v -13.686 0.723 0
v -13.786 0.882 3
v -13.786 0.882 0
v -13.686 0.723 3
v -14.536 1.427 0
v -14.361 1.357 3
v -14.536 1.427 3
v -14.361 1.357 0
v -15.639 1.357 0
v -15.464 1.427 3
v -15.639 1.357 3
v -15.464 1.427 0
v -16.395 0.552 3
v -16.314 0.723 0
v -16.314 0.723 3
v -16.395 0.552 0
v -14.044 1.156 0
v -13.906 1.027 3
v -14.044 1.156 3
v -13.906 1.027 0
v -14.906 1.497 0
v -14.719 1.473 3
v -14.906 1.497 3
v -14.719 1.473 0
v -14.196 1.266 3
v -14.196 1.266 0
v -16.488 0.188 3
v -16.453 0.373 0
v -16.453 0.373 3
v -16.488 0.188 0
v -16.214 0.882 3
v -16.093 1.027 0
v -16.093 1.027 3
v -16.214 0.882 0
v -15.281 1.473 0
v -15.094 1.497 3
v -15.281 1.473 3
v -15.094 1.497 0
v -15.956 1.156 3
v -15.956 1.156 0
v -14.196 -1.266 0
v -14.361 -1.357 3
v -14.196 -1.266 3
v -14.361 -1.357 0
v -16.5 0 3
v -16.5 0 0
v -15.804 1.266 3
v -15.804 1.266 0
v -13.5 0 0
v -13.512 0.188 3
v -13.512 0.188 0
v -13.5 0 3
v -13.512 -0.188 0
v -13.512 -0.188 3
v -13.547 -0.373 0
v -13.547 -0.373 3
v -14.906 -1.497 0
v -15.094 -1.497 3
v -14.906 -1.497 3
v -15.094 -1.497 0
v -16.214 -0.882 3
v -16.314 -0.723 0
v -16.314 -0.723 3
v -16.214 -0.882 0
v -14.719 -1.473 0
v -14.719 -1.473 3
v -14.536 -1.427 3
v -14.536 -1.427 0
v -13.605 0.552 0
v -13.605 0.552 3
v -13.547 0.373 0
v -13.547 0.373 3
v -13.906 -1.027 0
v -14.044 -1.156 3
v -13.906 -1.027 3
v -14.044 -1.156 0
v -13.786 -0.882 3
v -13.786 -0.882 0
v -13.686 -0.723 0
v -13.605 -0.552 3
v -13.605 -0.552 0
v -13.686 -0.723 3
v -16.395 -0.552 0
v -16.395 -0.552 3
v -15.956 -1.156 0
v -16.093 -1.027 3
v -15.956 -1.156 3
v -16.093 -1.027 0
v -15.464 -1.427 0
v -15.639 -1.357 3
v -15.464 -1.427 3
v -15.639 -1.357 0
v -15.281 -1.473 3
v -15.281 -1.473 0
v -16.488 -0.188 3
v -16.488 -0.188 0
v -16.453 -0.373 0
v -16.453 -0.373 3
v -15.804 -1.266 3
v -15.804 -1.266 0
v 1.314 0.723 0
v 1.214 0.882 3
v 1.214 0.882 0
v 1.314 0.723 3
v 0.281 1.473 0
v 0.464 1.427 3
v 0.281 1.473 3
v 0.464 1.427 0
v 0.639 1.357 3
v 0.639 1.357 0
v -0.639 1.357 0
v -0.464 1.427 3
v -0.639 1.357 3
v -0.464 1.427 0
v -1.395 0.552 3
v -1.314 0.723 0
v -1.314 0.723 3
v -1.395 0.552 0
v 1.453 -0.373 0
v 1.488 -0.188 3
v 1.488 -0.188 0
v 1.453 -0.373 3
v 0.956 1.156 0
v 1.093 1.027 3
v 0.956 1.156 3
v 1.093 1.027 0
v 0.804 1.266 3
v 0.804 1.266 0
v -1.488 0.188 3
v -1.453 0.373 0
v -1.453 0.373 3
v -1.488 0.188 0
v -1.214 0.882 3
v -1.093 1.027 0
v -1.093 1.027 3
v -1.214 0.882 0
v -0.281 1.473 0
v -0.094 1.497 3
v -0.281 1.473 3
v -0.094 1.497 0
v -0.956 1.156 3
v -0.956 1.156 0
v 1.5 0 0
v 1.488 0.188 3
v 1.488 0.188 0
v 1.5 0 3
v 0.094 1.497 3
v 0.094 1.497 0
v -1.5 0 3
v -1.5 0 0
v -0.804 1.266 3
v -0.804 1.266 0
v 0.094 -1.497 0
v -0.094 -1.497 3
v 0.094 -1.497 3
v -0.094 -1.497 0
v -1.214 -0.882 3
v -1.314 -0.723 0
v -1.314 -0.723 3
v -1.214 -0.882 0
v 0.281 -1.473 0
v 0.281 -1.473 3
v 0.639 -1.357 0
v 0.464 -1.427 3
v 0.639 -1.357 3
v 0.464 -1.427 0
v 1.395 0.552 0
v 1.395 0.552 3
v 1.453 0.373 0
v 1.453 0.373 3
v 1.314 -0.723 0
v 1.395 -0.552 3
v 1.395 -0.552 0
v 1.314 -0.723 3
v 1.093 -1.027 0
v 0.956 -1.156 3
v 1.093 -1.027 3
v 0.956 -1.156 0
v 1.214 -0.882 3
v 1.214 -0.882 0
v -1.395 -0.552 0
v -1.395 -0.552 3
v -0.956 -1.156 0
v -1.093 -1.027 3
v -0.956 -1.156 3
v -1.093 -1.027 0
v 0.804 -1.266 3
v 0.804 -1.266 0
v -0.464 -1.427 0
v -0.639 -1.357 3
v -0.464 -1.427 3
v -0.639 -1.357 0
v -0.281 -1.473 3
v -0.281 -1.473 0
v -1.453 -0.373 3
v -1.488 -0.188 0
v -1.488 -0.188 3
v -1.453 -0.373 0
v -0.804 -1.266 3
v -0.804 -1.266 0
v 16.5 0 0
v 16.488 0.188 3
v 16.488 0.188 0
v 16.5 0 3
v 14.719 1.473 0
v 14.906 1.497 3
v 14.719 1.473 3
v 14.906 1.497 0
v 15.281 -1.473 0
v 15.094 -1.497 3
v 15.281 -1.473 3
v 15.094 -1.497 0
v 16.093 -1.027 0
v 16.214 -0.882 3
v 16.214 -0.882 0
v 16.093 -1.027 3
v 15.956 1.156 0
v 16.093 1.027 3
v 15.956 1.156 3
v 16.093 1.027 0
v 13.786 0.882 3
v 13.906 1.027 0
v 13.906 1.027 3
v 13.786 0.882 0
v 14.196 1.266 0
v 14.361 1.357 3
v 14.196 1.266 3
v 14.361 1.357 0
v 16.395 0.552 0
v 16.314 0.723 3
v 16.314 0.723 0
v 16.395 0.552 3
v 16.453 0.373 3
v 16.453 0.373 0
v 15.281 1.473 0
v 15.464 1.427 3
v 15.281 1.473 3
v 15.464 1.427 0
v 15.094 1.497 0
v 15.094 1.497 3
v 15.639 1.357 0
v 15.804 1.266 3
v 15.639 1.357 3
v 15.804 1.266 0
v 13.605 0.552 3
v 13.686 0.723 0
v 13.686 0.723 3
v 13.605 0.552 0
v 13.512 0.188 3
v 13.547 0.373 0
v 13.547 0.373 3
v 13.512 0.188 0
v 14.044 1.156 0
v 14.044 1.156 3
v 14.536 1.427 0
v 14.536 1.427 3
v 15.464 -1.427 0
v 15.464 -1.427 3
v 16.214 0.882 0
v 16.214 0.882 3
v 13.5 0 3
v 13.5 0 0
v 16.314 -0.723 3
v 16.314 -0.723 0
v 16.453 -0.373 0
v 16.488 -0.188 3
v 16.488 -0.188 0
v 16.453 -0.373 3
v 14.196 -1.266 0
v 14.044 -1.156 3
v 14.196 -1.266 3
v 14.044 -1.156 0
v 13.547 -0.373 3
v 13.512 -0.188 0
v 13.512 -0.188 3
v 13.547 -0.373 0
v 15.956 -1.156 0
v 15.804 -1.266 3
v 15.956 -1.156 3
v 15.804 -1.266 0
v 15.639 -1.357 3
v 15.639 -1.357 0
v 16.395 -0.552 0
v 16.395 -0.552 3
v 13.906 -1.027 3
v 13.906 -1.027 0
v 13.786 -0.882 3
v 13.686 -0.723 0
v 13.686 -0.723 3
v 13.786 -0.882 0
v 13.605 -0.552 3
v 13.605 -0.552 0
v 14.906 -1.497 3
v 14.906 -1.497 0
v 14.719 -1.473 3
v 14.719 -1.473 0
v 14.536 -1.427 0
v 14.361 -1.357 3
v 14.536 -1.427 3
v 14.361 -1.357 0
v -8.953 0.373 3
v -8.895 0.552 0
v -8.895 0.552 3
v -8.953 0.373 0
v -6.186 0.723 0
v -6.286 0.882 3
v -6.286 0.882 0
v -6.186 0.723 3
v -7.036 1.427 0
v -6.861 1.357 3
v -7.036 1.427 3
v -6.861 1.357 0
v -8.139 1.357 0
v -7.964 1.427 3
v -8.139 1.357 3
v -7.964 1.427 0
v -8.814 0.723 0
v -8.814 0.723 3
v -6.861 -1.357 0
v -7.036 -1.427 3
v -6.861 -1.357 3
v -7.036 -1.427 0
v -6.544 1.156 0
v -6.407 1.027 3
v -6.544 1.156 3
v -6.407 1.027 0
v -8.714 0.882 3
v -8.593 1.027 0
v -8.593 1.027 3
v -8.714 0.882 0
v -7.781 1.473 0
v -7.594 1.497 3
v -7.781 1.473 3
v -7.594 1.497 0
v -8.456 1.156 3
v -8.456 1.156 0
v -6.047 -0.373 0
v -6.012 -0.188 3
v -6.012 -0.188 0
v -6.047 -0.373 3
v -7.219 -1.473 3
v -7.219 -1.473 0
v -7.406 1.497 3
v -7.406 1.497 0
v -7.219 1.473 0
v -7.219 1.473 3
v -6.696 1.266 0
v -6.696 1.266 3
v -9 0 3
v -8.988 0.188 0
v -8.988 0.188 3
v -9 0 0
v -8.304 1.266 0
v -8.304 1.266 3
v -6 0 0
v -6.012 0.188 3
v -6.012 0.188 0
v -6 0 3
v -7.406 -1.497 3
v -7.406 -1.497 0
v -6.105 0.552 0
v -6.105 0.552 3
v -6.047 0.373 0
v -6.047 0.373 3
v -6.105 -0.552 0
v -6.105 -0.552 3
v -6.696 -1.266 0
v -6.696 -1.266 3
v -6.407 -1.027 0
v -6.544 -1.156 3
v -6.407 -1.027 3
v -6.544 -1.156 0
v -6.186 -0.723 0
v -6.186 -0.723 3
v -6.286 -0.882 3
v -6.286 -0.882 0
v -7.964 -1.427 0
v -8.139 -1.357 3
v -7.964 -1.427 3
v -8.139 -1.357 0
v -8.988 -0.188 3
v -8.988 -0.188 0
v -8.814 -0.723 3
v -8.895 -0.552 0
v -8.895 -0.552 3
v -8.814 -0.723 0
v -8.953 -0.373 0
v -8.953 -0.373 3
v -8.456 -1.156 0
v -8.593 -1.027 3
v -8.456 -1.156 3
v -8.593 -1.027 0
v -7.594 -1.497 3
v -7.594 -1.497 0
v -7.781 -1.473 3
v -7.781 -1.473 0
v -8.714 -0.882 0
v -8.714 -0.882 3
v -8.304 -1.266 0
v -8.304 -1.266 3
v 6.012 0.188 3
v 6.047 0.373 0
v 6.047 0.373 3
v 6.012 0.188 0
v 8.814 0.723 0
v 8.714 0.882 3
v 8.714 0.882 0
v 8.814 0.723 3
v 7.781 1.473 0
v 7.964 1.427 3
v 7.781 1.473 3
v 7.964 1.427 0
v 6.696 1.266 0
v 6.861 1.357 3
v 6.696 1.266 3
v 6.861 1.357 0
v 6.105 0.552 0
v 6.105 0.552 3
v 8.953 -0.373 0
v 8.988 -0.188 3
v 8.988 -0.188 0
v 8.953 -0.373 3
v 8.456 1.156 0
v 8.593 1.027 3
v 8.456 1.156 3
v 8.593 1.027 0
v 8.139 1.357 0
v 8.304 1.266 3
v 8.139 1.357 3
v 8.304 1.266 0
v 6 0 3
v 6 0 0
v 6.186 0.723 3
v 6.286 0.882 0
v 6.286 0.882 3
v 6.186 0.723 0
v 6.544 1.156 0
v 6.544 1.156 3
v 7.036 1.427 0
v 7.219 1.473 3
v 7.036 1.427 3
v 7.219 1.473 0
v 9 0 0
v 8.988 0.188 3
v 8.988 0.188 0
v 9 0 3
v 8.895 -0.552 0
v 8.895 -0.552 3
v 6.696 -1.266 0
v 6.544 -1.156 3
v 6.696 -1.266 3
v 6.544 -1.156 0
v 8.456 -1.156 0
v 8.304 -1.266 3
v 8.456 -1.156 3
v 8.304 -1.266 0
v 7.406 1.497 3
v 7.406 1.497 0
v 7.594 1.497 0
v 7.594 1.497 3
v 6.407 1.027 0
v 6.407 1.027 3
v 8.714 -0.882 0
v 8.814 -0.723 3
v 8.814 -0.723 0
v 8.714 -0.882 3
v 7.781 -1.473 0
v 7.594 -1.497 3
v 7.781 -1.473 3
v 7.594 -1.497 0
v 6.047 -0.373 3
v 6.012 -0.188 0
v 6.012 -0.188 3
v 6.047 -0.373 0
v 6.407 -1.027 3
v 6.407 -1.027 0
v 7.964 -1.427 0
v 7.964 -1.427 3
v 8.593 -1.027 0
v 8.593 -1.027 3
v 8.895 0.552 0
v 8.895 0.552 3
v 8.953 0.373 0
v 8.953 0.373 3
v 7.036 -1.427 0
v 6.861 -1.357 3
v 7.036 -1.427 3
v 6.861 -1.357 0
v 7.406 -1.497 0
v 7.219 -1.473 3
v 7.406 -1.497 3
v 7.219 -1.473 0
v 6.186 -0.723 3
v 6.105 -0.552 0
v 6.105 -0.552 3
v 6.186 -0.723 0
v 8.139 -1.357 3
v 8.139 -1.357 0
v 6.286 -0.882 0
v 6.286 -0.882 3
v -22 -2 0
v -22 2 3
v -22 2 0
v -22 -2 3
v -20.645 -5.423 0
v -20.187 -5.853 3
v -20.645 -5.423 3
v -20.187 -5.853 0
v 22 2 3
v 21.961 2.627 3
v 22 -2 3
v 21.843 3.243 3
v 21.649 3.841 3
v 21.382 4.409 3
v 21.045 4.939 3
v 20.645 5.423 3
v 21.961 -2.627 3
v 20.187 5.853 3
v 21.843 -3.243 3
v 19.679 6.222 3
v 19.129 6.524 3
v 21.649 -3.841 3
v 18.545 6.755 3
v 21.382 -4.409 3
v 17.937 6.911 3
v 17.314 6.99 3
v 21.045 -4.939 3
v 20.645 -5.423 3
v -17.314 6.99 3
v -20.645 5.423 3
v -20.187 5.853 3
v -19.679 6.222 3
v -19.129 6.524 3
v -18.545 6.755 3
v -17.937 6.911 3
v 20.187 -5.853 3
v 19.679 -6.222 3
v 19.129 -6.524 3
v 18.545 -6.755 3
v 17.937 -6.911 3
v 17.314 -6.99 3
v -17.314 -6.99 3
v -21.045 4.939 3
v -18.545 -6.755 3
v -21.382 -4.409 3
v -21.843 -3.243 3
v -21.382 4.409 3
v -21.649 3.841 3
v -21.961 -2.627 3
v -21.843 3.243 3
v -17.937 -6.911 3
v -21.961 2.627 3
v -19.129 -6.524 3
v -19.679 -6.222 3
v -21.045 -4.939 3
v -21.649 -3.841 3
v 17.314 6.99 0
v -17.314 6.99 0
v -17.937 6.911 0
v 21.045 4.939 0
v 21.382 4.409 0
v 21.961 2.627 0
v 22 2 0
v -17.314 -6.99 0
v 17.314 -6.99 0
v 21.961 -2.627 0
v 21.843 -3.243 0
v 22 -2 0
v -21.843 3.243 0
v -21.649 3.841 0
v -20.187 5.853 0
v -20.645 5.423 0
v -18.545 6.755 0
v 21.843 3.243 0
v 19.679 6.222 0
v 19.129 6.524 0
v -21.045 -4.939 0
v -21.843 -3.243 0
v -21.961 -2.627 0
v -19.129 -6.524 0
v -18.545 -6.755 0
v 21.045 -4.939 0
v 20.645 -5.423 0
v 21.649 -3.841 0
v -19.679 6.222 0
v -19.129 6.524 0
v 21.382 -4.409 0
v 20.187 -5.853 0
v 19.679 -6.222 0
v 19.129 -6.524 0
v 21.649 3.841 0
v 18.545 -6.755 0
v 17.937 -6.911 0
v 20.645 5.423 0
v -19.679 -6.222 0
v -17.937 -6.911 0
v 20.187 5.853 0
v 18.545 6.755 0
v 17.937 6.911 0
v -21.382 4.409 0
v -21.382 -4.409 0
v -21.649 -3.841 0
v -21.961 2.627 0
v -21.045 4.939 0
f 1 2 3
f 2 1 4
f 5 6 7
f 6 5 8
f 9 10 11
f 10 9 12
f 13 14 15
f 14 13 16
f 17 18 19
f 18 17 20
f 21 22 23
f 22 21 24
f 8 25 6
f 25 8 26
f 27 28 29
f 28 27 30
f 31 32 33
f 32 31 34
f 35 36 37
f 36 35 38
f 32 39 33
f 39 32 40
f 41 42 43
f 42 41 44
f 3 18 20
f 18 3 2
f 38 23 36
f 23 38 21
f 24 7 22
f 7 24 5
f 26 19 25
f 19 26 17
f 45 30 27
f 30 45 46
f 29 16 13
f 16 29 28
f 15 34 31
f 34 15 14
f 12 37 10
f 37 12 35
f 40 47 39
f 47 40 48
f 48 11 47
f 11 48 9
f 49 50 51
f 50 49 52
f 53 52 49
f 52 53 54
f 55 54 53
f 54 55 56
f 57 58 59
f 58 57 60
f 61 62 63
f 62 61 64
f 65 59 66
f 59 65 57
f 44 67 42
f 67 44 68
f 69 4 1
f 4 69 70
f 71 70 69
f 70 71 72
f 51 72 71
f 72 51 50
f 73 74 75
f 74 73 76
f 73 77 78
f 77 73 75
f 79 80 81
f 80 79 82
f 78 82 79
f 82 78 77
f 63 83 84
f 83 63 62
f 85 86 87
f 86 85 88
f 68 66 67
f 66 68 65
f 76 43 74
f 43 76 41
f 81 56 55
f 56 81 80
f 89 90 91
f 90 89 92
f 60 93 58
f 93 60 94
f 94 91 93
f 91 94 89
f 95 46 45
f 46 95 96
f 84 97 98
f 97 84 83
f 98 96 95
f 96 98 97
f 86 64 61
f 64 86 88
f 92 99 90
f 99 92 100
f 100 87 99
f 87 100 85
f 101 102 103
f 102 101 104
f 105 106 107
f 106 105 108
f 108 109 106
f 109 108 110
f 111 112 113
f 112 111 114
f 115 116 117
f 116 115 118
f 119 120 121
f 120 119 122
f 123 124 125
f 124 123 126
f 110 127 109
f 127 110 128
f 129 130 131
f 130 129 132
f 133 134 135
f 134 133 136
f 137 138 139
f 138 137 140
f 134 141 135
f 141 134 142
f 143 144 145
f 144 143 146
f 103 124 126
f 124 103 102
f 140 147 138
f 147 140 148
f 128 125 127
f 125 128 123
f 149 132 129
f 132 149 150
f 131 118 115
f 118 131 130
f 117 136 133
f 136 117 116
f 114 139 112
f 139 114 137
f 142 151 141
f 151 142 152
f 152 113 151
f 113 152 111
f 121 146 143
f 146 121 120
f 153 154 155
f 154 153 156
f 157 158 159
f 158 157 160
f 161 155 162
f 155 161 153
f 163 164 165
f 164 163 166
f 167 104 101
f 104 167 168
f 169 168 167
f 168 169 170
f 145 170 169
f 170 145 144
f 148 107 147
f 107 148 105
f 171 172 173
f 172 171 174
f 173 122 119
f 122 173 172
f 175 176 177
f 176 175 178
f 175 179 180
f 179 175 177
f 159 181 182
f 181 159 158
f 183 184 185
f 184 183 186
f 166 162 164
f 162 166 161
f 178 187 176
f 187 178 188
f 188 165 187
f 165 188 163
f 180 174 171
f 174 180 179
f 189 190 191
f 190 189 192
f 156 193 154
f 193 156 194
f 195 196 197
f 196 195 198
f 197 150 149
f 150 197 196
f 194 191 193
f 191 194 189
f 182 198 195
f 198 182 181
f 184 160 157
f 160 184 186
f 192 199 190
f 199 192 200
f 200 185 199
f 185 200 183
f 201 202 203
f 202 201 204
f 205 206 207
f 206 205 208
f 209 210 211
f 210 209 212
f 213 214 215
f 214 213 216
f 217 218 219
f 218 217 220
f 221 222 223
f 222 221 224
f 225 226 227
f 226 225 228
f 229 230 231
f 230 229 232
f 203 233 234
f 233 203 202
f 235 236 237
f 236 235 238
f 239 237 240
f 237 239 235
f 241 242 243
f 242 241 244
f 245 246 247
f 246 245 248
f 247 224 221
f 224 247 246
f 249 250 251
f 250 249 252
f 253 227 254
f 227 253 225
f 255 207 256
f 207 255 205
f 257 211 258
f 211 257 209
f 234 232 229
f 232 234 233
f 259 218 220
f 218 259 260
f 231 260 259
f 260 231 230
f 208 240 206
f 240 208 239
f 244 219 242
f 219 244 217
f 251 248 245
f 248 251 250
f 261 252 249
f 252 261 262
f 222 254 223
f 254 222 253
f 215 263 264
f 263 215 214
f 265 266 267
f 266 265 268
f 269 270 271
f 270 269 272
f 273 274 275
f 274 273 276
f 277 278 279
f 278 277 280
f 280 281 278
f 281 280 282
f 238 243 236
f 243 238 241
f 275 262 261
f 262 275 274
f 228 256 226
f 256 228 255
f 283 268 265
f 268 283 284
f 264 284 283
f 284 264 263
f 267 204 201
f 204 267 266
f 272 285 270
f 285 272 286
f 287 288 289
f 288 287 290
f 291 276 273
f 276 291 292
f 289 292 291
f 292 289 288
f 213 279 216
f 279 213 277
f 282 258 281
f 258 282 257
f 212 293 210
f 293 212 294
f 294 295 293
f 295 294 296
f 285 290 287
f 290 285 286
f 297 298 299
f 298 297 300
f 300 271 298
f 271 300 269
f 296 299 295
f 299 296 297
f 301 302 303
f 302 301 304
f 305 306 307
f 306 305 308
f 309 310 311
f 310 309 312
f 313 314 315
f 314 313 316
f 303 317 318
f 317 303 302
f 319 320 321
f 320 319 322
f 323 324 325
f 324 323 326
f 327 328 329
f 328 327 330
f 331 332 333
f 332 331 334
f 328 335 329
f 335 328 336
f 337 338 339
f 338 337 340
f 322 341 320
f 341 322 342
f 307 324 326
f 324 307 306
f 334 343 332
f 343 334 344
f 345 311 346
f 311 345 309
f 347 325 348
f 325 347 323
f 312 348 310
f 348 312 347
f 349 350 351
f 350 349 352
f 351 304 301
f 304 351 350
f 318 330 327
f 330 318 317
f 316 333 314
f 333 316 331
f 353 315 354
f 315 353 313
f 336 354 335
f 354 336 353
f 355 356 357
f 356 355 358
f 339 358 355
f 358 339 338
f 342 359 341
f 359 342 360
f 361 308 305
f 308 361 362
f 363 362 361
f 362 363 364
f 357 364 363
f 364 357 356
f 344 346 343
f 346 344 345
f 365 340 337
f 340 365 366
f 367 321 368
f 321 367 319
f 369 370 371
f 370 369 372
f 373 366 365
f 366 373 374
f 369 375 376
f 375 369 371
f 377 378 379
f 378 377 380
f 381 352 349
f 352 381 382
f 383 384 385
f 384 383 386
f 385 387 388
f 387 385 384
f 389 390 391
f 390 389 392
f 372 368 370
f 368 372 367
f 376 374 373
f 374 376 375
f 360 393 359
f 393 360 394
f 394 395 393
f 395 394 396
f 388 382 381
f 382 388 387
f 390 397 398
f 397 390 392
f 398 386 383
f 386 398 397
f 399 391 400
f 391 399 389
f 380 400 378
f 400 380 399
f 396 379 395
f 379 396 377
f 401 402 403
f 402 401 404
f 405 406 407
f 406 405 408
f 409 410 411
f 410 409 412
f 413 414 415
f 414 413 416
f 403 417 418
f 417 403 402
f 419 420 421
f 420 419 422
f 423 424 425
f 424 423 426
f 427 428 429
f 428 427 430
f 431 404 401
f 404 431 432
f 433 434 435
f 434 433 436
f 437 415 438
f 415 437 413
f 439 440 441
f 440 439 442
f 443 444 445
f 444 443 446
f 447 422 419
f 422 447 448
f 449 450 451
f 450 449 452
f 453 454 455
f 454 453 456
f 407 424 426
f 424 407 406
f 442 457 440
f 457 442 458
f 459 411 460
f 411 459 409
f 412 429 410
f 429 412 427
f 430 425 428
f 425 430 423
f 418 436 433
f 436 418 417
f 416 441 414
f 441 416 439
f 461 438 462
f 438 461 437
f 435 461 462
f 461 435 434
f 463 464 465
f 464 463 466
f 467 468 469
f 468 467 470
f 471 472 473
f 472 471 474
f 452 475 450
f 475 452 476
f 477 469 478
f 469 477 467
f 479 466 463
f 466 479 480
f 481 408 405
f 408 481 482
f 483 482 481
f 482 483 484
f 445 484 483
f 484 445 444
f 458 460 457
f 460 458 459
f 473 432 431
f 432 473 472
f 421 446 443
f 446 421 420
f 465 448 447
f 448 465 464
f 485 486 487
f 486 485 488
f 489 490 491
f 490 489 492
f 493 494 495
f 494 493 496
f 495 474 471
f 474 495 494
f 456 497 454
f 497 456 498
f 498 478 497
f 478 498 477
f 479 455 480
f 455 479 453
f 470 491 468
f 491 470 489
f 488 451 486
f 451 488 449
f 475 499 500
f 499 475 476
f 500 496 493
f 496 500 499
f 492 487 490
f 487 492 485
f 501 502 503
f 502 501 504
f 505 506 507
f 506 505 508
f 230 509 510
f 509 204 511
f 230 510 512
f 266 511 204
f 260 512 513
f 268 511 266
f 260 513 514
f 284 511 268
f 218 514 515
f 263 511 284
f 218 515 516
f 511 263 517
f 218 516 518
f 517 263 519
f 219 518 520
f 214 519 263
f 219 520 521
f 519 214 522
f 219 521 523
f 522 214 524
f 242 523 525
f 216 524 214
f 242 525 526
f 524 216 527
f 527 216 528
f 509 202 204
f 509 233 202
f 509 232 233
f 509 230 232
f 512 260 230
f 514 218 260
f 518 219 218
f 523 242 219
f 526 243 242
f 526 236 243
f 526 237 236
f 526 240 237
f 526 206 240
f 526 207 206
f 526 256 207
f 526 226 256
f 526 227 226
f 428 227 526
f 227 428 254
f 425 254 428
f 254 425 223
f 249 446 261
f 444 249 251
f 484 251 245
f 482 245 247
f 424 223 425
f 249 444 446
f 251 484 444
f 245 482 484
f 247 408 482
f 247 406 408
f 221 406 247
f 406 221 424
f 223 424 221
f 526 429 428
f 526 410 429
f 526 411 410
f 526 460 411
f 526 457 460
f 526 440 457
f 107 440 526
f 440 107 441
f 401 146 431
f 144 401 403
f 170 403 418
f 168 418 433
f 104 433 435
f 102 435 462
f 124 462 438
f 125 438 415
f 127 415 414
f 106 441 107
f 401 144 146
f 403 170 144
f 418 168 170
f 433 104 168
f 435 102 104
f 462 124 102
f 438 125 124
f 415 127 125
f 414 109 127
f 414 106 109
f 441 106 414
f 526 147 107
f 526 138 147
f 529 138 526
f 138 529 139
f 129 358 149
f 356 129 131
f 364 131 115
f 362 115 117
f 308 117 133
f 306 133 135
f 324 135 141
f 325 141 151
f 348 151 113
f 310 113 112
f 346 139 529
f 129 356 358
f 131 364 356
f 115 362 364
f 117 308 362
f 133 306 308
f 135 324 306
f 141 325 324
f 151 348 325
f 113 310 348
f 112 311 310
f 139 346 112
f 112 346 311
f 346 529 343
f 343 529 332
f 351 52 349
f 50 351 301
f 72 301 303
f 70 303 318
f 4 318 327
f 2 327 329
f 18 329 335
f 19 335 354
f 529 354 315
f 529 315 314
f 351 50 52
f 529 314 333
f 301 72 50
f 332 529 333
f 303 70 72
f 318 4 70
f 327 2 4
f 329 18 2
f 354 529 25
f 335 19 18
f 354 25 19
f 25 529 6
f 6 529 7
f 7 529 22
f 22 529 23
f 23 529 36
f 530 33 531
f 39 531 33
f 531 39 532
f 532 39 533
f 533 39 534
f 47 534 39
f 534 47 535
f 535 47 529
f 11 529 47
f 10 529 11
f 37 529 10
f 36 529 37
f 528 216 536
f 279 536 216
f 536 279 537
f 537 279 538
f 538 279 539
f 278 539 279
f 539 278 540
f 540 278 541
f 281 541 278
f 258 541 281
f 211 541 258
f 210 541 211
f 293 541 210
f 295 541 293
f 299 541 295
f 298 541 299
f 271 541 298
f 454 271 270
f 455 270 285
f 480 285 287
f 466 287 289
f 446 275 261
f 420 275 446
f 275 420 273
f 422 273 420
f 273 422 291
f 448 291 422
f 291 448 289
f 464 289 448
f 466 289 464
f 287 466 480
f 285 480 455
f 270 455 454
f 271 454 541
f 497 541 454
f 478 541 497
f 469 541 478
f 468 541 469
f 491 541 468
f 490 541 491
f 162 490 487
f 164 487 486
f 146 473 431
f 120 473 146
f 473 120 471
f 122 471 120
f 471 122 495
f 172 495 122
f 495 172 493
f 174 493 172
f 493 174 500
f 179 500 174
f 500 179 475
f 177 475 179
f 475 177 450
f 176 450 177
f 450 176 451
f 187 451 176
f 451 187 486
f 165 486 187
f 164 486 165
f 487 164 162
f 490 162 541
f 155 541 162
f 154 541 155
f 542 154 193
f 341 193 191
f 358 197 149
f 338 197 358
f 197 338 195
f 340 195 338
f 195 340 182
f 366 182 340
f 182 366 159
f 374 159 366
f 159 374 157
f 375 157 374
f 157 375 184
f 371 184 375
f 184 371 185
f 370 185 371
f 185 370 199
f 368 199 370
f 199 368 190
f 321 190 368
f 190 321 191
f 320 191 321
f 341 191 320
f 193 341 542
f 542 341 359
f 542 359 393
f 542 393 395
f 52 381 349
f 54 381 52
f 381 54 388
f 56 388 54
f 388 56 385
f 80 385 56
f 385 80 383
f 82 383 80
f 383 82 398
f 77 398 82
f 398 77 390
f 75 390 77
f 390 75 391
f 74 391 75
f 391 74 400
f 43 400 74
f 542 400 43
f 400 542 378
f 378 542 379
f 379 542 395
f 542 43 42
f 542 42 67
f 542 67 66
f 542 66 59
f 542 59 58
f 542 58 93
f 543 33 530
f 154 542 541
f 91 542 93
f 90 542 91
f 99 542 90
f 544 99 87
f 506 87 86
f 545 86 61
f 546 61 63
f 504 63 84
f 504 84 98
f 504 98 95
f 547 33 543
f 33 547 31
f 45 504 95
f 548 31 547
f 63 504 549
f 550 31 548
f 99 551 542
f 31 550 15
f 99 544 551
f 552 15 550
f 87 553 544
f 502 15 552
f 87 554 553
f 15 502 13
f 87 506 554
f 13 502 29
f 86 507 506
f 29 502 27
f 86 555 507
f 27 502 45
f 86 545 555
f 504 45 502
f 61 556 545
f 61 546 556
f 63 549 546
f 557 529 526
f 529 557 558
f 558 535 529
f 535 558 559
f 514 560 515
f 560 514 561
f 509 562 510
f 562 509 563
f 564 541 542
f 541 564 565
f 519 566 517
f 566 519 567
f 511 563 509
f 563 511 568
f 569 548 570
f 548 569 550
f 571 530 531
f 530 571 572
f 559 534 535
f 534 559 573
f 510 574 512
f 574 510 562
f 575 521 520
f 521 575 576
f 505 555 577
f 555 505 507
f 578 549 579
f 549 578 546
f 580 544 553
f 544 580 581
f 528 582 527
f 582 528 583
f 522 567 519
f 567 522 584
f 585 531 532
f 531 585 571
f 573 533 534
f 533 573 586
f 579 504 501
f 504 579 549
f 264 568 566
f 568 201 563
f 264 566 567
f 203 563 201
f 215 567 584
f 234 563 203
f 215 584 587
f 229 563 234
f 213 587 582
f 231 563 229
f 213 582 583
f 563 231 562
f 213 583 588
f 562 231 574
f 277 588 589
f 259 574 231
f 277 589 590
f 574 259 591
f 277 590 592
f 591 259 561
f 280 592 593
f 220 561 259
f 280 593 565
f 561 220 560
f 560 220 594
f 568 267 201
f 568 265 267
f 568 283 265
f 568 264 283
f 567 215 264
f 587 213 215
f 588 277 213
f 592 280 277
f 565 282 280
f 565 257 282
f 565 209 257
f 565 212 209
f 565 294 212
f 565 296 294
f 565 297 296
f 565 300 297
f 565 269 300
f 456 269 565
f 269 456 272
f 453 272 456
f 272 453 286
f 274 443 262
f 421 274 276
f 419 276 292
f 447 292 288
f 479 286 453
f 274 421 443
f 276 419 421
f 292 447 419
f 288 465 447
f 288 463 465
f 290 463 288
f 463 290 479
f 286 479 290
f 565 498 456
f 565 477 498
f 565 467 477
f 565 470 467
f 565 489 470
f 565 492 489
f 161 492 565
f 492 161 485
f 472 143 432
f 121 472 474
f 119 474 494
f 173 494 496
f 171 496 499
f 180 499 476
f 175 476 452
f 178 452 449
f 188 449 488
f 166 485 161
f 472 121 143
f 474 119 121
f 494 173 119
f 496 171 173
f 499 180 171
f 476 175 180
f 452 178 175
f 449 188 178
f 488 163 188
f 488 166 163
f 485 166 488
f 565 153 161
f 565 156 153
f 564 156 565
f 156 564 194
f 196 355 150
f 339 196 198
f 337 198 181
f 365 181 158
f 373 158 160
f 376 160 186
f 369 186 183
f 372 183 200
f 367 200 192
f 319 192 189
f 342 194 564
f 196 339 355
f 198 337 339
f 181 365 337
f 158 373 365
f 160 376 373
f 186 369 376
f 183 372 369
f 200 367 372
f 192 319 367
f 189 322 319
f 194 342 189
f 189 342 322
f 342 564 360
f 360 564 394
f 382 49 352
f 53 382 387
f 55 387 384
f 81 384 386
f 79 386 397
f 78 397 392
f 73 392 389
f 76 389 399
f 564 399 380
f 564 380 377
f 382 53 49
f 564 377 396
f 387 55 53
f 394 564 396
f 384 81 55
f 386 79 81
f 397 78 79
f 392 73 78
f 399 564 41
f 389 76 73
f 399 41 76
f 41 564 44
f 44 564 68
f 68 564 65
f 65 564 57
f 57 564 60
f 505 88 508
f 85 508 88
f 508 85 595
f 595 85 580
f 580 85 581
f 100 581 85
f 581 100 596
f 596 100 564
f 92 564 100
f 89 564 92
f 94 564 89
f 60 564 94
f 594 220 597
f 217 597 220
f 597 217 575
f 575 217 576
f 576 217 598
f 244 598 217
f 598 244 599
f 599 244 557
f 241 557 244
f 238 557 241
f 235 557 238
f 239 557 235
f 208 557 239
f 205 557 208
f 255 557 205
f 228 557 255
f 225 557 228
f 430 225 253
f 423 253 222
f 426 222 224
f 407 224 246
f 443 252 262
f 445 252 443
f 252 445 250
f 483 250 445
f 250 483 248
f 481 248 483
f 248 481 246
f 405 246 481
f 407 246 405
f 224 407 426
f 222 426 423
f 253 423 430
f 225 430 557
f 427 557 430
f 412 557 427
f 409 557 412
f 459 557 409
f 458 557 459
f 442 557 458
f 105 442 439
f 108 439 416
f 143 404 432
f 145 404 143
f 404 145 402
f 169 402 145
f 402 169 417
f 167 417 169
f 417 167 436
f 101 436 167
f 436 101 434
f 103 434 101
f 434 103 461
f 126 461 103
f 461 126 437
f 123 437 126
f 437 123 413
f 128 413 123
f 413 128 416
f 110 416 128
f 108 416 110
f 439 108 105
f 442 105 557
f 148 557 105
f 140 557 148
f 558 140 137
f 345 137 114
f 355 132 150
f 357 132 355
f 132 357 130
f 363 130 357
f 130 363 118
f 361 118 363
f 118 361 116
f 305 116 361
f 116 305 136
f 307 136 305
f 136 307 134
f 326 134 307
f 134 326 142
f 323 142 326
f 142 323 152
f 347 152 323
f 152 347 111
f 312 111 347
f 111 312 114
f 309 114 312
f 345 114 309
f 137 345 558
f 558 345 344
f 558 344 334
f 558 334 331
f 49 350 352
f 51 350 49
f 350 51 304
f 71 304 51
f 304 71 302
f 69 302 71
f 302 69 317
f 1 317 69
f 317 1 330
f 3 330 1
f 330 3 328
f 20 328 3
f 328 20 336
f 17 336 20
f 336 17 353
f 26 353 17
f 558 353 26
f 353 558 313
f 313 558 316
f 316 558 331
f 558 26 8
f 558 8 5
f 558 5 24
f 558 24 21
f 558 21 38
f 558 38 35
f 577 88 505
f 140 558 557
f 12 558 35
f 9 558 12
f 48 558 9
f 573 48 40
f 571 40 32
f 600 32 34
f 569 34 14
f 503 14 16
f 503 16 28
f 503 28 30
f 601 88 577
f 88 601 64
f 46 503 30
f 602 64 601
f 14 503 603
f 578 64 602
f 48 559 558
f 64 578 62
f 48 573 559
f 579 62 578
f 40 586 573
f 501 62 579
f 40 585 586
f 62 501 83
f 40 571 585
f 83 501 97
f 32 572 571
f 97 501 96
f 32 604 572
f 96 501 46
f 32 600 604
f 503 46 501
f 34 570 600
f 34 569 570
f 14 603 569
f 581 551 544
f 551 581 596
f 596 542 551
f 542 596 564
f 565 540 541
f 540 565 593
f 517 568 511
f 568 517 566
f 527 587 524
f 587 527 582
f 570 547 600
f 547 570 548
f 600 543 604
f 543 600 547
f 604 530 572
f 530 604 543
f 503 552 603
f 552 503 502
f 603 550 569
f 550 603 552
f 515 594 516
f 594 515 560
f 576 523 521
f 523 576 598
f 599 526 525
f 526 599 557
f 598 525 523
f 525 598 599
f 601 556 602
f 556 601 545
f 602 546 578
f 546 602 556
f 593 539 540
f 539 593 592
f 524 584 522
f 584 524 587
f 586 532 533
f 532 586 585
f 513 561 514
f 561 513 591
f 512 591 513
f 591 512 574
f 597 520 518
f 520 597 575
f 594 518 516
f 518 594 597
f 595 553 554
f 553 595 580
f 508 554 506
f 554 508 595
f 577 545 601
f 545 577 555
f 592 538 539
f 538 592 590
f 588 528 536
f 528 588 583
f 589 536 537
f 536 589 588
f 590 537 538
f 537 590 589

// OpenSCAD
$fn = 50;


difference() {
	union() {
		hull() {
			translate(v = [-17.0000000000, 2.0000000000, 0]) {
				cylinder(h = 3, r = 5);
			}
			translate(v = [17.0000000000, 2.0000000000, 0]) {
				cylinder(h = 3, r = 5);
			}
			translate(v = [-17.0000000000, -2.0000000000, 0]) {
				cylinder(h = 3, r = 5);
			}
			translate(v = [17.0000000000, -2.0000000000, 0]) {
				cylinder(h = 3, r = 5);
			}
		}
	}
	union() {
		translate(v = [-15.0000000000, 0.0000000000, 0]) {
			translate(v = [0, 0, -100]) {
				cylinder(h = 200, r = 1.5000000000);
			}
		}
		translate(v = [0, 0, -100]) {
			cylinder(h = 200, r = 1.5000000000);
		}
		translate(v = [15.0000000000, 0.0000000000, 0]) {
			translate(v = [0, 0, -100]) {
				cylinder(h = 200, r = 1.5000000000);
			}
		}
		translate(v = [-15.0000000000, 0.0000000000, 0]) {
			translate(v = [0, 0, -100]) {
				cylinder(h = 200, r = 1.5000000000);
			}
		}
		translate(v = [-7.5000000000, 0.0000000000, 0]) {
			translate(v = [0, 0, -100]) {
				cylinder(h = 200, r = 1.5000000000);
			}
		}
		translate(v = [0, 0, -100]) {
			cylinder(h = 200, r = 1.5000000000);
		}
		translate(v = [7.5000000000, 0.0000000000, 0]) {
			translate(v = [0, 0, -100]) {
				cylinder(h = 200, r = 1.5000000000);
			}
		}
		translate(v = [15.0000000000, 0.0000000000, 0]) {
			translate(v = [0, 0, -100]) {
				cylinder(h = 200, r = 1.5000000000);
			}
		}
	}
}
